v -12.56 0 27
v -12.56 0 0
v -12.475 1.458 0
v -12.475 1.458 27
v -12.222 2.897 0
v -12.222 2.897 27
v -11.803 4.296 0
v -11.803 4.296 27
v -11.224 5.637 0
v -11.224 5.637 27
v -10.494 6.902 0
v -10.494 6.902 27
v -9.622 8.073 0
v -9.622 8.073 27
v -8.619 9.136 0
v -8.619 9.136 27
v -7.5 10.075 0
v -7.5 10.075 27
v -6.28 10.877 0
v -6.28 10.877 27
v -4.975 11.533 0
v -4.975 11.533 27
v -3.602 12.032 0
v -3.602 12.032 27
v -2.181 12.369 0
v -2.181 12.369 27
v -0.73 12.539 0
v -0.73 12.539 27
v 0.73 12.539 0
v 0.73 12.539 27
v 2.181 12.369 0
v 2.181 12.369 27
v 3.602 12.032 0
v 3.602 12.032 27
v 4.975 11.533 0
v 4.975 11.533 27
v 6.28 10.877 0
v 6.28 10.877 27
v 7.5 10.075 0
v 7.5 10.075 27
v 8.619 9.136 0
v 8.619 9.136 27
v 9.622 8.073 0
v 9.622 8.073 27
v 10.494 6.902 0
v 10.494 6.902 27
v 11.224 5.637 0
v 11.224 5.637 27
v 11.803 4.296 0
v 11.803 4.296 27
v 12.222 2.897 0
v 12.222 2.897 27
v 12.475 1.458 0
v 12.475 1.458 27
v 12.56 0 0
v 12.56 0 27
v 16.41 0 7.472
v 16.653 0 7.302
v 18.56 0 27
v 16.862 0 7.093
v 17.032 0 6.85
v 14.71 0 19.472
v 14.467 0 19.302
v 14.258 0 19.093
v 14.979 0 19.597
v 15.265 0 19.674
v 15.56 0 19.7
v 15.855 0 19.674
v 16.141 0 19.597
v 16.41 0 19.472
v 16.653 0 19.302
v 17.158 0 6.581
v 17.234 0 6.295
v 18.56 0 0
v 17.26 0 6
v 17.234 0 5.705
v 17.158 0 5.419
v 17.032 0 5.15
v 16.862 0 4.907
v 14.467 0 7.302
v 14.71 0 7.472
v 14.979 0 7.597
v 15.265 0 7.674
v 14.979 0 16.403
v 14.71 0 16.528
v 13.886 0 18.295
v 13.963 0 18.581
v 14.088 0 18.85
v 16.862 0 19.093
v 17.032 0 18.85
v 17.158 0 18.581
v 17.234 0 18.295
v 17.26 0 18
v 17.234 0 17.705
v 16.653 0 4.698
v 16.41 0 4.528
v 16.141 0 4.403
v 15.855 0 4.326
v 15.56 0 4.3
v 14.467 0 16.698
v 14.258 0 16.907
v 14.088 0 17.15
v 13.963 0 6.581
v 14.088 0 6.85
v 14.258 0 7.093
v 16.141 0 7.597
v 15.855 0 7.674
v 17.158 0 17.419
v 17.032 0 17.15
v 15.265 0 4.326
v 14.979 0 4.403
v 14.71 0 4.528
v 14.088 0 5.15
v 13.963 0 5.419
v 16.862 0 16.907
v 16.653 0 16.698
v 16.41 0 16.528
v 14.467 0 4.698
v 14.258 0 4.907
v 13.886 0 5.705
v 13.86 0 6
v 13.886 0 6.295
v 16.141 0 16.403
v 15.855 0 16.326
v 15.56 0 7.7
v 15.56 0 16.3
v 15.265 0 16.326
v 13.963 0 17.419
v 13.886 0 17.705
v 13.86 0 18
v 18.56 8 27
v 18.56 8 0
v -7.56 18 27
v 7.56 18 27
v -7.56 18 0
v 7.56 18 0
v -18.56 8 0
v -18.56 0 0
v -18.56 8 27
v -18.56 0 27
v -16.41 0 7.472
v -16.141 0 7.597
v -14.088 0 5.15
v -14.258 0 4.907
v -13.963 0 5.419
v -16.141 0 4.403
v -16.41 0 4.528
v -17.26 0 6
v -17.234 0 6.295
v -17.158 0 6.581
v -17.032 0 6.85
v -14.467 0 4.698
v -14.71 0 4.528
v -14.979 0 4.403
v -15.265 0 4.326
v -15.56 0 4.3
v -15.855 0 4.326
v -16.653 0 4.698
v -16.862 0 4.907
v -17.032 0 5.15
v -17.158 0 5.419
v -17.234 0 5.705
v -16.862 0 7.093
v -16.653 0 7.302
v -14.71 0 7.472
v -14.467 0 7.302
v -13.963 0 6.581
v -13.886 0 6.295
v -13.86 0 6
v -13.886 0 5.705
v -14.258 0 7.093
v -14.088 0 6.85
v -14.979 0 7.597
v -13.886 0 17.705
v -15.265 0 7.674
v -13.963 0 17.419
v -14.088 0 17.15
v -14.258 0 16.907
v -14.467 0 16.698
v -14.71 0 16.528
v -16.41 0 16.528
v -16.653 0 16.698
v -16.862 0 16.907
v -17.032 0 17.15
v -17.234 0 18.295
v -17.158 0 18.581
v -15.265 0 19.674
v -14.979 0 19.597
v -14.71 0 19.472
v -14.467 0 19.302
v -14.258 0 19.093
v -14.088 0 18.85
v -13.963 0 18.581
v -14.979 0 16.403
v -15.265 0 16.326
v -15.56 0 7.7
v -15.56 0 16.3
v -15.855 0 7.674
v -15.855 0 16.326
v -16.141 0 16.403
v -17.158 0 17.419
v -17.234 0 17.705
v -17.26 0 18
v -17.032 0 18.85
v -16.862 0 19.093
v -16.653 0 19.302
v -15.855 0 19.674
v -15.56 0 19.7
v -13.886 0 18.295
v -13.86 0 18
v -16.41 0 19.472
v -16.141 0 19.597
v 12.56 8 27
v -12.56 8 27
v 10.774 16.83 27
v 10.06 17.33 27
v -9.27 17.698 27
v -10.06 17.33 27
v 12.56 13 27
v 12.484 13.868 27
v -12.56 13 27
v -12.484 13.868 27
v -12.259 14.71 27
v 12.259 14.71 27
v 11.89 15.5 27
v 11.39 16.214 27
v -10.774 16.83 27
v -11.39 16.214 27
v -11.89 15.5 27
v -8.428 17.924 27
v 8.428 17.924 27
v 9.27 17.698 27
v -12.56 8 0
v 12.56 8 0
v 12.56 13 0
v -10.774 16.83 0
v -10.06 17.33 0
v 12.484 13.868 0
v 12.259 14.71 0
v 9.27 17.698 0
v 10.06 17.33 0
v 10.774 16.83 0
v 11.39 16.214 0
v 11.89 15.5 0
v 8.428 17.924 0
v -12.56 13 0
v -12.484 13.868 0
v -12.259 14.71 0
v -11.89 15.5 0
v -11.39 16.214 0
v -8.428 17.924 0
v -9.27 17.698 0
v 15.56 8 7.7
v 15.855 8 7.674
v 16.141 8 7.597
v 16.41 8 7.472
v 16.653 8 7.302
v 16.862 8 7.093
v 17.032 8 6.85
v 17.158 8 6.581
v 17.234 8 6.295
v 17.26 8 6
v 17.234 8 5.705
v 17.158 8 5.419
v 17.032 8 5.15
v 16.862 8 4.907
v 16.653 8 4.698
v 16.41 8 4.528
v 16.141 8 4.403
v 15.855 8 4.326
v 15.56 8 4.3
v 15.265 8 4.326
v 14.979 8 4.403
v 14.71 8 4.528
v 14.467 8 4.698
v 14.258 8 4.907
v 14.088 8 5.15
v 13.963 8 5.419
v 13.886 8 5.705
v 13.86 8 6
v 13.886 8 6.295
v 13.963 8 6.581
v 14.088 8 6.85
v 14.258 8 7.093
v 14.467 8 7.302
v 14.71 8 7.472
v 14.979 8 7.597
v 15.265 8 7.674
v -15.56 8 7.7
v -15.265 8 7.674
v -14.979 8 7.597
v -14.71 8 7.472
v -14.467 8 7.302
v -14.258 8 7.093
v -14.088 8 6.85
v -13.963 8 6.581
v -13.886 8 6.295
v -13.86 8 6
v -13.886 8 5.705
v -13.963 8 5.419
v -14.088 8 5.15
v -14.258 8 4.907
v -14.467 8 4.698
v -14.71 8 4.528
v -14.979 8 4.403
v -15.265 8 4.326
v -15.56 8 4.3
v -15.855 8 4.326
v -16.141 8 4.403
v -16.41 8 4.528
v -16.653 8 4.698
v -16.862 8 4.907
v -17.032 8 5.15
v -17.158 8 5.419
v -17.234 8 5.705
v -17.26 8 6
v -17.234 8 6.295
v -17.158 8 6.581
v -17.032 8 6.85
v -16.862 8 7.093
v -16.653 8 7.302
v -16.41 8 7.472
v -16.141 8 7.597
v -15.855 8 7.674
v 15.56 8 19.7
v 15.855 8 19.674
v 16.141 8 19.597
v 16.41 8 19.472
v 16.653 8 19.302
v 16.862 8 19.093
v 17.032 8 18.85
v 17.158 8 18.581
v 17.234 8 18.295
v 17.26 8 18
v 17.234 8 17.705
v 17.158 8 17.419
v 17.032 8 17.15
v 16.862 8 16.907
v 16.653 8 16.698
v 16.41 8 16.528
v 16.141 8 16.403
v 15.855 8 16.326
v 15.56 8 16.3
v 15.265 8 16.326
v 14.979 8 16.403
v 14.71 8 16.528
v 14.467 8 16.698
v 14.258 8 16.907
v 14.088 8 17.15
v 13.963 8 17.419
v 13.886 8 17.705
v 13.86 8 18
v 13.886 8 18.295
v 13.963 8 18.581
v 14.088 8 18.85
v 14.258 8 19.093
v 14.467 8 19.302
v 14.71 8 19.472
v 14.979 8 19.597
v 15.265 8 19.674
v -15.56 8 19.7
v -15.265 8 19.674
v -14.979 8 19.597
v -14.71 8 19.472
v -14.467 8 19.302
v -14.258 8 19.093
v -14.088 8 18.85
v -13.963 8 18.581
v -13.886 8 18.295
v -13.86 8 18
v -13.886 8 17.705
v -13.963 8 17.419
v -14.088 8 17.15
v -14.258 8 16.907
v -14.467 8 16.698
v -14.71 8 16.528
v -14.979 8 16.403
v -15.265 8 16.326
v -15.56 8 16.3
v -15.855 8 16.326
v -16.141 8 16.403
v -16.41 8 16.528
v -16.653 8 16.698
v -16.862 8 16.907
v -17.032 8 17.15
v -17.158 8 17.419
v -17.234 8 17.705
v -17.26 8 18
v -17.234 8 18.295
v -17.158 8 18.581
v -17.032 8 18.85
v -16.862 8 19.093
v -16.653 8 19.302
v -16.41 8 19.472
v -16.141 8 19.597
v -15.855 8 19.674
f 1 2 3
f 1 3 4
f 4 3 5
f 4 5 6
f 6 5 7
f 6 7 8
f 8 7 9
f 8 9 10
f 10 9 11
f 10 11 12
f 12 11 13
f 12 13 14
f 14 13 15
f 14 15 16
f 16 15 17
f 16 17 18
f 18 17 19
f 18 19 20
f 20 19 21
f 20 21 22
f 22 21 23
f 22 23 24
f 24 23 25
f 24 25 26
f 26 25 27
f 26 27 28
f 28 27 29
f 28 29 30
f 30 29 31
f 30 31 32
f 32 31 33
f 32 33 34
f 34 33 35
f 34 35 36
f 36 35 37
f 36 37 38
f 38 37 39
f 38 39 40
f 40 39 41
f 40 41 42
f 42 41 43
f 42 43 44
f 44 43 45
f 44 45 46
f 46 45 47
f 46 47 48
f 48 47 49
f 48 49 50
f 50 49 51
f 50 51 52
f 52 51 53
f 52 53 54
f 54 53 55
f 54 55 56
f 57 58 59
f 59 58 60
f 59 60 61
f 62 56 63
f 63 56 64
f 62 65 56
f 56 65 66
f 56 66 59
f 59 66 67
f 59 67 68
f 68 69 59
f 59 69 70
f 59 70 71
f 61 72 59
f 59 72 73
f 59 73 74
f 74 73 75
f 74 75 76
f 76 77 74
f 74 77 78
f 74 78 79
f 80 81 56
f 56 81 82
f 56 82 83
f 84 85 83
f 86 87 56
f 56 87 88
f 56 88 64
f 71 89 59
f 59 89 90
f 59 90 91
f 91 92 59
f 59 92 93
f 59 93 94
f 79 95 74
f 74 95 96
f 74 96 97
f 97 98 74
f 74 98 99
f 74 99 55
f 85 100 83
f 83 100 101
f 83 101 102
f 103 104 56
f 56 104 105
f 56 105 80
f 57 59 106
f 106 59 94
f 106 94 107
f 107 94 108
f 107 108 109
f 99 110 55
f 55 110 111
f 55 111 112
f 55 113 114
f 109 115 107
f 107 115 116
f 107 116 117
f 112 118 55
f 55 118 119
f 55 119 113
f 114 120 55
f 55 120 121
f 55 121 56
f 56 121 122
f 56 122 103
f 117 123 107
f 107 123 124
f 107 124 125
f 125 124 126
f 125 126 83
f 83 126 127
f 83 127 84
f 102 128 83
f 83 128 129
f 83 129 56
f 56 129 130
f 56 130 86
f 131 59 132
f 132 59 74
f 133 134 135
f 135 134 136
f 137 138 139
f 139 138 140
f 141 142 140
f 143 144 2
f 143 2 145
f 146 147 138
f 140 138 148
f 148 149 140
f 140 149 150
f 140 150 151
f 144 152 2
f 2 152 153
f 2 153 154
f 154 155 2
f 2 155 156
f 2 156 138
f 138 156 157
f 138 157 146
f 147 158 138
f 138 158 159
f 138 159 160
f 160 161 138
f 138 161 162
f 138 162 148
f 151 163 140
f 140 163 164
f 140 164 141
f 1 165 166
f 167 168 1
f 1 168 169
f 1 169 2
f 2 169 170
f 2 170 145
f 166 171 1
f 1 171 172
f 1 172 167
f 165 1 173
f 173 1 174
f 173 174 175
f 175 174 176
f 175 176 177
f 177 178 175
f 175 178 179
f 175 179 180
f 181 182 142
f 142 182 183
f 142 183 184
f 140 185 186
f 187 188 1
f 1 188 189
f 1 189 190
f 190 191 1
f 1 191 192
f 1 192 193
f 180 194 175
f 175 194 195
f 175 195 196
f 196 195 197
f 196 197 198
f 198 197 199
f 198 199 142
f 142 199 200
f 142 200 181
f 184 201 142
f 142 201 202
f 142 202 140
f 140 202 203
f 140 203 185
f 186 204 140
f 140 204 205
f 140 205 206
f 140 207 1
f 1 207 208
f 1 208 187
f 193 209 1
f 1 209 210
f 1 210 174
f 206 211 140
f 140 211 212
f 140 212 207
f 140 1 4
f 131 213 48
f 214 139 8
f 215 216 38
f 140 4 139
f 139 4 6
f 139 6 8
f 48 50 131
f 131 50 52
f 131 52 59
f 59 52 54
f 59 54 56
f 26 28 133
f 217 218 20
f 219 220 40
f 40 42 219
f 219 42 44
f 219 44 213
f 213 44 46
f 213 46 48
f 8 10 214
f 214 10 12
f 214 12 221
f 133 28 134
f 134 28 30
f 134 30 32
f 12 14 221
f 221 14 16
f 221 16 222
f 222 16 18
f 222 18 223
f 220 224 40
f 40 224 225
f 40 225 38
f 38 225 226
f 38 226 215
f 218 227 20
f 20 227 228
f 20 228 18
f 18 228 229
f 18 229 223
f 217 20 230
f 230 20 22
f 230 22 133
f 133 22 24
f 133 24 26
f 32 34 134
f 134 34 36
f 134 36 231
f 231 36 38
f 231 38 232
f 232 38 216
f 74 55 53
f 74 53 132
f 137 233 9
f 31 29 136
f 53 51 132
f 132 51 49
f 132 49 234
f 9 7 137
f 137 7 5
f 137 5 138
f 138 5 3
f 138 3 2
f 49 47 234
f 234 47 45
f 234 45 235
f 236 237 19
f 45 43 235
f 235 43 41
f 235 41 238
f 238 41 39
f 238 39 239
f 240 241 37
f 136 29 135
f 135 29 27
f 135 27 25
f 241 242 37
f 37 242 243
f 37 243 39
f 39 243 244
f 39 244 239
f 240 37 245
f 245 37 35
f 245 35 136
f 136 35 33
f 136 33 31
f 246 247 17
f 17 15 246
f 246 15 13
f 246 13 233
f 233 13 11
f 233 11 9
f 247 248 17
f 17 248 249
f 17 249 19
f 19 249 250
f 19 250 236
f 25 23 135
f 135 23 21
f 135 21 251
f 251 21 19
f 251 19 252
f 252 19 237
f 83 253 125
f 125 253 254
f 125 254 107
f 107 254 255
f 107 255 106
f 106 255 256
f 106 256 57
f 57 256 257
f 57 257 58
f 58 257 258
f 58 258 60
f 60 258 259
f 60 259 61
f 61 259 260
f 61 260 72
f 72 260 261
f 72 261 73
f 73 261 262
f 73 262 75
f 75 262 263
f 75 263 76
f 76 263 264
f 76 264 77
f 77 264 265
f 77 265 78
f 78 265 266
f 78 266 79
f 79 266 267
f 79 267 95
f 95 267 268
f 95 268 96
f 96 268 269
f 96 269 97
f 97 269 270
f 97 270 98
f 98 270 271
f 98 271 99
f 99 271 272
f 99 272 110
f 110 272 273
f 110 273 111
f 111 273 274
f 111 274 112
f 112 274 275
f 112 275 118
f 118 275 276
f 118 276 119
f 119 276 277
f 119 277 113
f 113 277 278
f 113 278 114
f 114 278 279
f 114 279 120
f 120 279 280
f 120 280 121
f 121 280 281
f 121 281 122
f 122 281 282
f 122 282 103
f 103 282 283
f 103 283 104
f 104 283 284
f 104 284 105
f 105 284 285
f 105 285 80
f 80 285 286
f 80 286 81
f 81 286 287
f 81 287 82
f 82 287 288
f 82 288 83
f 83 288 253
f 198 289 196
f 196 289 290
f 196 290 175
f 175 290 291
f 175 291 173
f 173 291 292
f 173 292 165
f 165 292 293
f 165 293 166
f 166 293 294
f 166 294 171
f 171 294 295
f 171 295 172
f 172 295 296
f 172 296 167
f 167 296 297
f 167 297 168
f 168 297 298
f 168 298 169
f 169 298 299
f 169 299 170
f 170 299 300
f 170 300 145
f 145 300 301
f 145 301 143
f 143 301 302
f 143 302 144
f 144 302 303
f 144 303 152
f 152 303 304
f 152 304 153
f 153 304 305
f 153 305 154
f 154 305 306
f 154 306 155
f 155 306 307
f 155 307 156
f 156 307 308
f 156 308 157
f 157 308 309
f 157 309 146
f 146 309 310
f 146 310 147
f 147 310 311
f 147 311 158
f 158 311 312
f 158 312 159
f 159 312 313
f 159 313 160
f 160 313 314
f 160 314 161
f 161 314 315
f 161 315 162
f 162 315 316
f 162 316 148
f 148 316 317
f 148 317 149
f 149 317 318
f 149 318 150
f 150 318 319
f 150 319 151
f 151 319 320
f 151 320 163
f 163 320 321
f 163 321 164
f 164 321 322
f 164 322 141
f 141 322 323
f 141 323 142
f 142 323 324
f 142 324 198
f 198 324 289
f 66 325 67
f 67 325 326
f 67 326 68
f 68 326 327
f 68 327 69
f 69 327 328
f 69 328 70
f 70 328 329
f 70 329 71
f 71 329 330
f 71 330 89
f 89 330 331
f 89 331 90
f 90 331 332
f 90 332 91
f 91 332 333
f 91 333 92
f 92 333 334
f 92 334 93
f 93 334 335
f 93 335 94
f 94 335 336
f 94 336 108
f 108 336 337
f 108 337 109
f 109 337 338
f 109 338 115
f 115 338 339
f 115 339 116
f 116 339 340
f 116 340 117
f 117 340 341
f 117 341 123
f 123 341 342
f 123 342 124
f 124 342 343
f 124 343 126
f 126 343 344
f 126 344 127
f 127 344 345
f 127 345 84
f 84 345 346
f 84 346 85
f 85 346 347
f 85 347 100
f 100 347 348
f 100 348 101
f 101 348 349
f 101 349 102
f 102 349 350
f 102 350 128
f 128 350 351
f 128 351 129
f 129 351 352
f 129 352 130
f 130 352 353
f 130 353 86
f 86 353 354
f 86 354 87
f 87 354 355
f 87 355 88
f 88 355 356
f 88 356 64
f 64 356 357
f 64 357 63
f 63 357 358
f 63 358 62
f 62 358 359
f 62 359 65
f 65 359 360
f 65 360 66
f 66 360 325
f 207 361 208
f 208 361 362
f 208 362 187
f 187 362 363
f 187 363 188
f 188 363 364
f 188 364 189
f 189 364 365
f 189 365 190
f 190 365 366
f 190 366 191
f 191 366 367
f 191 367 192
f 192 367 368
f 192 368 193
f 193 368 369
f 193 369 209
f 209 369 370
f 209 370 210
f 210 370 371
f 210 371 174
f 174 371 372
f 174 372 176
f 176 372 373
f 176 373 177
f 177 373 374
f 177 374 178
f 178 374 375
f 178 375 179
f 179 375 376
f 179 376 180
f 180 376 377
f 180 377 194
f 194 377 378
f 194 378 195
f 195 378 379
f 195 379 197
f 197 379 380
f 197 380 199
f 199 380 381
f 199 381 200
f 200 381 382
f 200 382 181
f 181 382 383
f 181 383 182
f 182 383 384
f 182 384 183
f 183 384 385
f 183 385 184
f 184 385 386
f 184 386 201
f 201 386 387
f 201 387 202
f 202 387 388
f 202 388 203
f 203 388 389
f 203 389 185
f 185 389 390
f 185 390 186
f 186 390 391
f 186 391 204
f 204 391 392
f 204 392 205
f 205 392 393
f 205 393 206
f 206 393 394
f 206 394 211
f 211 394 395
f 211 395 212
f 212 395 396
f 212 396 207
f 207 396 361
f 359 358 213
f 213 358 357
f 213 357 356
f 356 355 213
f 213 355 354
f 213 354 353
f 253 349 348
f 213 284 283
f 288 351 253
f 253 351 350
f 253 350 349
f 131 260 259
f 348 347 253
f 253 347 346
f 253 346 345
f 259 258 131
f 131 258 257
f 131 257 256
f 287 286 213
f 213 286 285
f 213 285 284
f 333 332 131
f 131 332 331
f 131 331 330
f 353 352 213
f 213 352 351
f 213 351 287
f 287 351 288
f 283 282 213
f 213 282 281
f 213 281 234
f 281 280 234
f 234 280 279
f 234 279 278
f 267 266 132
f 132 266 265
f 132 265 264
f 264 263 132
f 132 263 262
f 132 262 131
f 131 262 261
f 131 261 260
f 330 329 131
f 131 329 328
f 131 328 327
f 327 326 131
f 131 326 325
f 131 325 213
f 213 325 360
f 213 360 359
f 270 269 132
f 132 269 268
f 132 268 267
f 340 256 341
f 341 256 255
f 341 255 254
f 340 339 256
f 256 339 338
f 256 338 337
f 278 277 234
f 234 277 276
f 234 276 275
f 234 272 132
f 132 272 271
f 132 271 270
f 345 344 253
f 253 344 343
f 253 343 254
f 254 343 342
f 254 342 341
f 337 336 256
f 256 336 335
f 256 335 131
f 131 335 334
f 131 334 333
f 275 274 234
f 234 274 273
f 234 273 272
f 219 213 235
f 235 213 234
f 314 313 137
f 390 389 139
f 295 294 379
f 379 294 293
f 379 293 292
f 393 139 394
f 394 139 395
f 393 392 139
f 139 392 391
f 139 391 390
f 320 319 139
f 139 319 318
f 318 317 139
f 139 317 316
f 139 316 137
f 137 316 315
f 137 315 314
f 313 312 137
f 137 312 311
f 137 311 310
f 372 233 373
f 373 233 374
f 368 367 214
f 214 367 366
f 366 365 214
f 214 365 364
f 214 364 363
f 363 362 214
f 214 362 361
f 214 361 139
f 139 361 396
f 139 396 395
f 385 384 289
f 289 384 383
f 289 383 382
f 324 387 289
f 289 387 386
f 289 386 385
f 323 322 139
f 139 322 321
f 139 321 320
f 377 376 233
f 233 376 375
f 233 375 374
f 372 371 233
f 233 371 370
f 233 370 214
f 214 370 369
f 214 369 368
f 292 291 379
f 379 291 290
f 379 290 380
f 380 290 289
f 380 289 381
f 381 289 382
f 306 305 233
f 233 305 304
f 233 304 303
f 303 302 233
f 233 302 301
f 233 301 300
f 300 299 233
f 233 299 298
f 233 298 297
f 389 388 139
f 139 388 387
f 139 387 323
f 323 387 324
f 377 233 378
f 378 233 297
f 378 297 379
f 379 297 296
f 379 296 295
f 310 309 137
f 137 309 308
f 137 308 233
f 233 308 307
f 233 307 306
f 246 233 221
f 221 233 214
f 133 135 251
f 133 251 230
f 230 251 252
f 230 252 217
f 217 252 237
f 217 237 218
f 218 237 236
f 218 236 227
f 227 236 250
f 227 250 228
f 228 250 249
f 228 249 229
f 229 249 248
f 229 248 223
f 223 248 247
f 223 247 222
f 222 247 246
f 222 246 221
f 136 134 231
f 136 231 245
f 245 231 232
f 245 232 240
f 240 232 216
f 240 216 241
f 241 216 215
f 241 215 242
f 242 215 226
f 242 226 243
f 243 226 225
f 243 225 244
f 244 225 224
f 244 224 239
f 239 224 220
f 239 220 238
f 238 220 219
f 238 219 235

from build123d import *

# Parameters (mm, degrees)
BOSS_EXTRU_1_DEPTH      = 27
ESQUISSE5_R             = 1.7
ENL_V_MAT_EXTRU_1_DEPTH = 18
ESQUISSE6_W             = 6
ESQUISSE6_H             = 27
ENL_V_MAT_EXTRU_2_DEPTH = 10
CONG_1_R                = 5


with BuildPart() as part:
    # Esquisse1 → Boss.-Extru.1 (new body)
    with BuildSketch(Plane.XY):
        with BuildLine():
            Line((-12.560062385, 0), (-18.560062385, 0))
            Line((-18.560062385, 0), (-18.560062385, 18))
            Line((-18.560062385, 18), (18.560062385, 18))
            Line((18.560062385, 18), (18.560062385, 0))
            Line((18.560062385, 0), (12.560062385, 0))
            ThreePointArc((12.560062385, 0), (0, 12.560062385), (-12.560062385, 0))
        make_face()
    extrude(amount=BOSS_EXTRU_1_DEPTH)

    # Esquisse5 → Enlèv. mat.-Extru.1 (cut)
    with BuildSketch(Plane(origin=(0, 18, 0), x_dir=(1, 0, 0), z_dir=(0, 1, 0))):
        with Locations((15.560062385, -6)):
            Circle(ESQUISSE5_R)
        with Locations((15.560062385, -18)):
            Circle(ESQUISSE5_R)
        with Locations((-15.560062385, -6)):
            Circle(ESQUISSE5_R)
        with Locations((-15.560062385, -18)):
            Circle(ESQUISSE5_R)
    extrude(amount=-ENL_V_MAT_EXTRU_1_DEPTH, mode=Mode.SUBTRACT)

    # Esquisse6 → Enlèv. mat.-Extru.2 (cut)
    with BuildSketch(Plane(origin=(0, 18, 0), x_dir=(1, 0, 0), z_dir=(0, 1, 0))):
        with Locations((15.560062385, -13.5)):
            Rectangle(ESQUISSE6_W, ESQUISSE6_H)
        with Locations((-15.560062385, -13.5)):
            Rectangle(ESQUISSE6_W, ESQUISSE6_H)
    extrude(amount=-ENL_V_MAT_EXTRU_2_DEPTH, mode=Mode.SUBTRACT)

    # Congé1
    cong_1_edges = [part.edges().sort_by_distance(p)[0] for p in [
        (12.560062385, 18, 13.5),
        (-12.560062385, 18, 13.5),
    ]]
    fillet(cong_1_edges, radius=CONG_1_R)


solid = part.part
